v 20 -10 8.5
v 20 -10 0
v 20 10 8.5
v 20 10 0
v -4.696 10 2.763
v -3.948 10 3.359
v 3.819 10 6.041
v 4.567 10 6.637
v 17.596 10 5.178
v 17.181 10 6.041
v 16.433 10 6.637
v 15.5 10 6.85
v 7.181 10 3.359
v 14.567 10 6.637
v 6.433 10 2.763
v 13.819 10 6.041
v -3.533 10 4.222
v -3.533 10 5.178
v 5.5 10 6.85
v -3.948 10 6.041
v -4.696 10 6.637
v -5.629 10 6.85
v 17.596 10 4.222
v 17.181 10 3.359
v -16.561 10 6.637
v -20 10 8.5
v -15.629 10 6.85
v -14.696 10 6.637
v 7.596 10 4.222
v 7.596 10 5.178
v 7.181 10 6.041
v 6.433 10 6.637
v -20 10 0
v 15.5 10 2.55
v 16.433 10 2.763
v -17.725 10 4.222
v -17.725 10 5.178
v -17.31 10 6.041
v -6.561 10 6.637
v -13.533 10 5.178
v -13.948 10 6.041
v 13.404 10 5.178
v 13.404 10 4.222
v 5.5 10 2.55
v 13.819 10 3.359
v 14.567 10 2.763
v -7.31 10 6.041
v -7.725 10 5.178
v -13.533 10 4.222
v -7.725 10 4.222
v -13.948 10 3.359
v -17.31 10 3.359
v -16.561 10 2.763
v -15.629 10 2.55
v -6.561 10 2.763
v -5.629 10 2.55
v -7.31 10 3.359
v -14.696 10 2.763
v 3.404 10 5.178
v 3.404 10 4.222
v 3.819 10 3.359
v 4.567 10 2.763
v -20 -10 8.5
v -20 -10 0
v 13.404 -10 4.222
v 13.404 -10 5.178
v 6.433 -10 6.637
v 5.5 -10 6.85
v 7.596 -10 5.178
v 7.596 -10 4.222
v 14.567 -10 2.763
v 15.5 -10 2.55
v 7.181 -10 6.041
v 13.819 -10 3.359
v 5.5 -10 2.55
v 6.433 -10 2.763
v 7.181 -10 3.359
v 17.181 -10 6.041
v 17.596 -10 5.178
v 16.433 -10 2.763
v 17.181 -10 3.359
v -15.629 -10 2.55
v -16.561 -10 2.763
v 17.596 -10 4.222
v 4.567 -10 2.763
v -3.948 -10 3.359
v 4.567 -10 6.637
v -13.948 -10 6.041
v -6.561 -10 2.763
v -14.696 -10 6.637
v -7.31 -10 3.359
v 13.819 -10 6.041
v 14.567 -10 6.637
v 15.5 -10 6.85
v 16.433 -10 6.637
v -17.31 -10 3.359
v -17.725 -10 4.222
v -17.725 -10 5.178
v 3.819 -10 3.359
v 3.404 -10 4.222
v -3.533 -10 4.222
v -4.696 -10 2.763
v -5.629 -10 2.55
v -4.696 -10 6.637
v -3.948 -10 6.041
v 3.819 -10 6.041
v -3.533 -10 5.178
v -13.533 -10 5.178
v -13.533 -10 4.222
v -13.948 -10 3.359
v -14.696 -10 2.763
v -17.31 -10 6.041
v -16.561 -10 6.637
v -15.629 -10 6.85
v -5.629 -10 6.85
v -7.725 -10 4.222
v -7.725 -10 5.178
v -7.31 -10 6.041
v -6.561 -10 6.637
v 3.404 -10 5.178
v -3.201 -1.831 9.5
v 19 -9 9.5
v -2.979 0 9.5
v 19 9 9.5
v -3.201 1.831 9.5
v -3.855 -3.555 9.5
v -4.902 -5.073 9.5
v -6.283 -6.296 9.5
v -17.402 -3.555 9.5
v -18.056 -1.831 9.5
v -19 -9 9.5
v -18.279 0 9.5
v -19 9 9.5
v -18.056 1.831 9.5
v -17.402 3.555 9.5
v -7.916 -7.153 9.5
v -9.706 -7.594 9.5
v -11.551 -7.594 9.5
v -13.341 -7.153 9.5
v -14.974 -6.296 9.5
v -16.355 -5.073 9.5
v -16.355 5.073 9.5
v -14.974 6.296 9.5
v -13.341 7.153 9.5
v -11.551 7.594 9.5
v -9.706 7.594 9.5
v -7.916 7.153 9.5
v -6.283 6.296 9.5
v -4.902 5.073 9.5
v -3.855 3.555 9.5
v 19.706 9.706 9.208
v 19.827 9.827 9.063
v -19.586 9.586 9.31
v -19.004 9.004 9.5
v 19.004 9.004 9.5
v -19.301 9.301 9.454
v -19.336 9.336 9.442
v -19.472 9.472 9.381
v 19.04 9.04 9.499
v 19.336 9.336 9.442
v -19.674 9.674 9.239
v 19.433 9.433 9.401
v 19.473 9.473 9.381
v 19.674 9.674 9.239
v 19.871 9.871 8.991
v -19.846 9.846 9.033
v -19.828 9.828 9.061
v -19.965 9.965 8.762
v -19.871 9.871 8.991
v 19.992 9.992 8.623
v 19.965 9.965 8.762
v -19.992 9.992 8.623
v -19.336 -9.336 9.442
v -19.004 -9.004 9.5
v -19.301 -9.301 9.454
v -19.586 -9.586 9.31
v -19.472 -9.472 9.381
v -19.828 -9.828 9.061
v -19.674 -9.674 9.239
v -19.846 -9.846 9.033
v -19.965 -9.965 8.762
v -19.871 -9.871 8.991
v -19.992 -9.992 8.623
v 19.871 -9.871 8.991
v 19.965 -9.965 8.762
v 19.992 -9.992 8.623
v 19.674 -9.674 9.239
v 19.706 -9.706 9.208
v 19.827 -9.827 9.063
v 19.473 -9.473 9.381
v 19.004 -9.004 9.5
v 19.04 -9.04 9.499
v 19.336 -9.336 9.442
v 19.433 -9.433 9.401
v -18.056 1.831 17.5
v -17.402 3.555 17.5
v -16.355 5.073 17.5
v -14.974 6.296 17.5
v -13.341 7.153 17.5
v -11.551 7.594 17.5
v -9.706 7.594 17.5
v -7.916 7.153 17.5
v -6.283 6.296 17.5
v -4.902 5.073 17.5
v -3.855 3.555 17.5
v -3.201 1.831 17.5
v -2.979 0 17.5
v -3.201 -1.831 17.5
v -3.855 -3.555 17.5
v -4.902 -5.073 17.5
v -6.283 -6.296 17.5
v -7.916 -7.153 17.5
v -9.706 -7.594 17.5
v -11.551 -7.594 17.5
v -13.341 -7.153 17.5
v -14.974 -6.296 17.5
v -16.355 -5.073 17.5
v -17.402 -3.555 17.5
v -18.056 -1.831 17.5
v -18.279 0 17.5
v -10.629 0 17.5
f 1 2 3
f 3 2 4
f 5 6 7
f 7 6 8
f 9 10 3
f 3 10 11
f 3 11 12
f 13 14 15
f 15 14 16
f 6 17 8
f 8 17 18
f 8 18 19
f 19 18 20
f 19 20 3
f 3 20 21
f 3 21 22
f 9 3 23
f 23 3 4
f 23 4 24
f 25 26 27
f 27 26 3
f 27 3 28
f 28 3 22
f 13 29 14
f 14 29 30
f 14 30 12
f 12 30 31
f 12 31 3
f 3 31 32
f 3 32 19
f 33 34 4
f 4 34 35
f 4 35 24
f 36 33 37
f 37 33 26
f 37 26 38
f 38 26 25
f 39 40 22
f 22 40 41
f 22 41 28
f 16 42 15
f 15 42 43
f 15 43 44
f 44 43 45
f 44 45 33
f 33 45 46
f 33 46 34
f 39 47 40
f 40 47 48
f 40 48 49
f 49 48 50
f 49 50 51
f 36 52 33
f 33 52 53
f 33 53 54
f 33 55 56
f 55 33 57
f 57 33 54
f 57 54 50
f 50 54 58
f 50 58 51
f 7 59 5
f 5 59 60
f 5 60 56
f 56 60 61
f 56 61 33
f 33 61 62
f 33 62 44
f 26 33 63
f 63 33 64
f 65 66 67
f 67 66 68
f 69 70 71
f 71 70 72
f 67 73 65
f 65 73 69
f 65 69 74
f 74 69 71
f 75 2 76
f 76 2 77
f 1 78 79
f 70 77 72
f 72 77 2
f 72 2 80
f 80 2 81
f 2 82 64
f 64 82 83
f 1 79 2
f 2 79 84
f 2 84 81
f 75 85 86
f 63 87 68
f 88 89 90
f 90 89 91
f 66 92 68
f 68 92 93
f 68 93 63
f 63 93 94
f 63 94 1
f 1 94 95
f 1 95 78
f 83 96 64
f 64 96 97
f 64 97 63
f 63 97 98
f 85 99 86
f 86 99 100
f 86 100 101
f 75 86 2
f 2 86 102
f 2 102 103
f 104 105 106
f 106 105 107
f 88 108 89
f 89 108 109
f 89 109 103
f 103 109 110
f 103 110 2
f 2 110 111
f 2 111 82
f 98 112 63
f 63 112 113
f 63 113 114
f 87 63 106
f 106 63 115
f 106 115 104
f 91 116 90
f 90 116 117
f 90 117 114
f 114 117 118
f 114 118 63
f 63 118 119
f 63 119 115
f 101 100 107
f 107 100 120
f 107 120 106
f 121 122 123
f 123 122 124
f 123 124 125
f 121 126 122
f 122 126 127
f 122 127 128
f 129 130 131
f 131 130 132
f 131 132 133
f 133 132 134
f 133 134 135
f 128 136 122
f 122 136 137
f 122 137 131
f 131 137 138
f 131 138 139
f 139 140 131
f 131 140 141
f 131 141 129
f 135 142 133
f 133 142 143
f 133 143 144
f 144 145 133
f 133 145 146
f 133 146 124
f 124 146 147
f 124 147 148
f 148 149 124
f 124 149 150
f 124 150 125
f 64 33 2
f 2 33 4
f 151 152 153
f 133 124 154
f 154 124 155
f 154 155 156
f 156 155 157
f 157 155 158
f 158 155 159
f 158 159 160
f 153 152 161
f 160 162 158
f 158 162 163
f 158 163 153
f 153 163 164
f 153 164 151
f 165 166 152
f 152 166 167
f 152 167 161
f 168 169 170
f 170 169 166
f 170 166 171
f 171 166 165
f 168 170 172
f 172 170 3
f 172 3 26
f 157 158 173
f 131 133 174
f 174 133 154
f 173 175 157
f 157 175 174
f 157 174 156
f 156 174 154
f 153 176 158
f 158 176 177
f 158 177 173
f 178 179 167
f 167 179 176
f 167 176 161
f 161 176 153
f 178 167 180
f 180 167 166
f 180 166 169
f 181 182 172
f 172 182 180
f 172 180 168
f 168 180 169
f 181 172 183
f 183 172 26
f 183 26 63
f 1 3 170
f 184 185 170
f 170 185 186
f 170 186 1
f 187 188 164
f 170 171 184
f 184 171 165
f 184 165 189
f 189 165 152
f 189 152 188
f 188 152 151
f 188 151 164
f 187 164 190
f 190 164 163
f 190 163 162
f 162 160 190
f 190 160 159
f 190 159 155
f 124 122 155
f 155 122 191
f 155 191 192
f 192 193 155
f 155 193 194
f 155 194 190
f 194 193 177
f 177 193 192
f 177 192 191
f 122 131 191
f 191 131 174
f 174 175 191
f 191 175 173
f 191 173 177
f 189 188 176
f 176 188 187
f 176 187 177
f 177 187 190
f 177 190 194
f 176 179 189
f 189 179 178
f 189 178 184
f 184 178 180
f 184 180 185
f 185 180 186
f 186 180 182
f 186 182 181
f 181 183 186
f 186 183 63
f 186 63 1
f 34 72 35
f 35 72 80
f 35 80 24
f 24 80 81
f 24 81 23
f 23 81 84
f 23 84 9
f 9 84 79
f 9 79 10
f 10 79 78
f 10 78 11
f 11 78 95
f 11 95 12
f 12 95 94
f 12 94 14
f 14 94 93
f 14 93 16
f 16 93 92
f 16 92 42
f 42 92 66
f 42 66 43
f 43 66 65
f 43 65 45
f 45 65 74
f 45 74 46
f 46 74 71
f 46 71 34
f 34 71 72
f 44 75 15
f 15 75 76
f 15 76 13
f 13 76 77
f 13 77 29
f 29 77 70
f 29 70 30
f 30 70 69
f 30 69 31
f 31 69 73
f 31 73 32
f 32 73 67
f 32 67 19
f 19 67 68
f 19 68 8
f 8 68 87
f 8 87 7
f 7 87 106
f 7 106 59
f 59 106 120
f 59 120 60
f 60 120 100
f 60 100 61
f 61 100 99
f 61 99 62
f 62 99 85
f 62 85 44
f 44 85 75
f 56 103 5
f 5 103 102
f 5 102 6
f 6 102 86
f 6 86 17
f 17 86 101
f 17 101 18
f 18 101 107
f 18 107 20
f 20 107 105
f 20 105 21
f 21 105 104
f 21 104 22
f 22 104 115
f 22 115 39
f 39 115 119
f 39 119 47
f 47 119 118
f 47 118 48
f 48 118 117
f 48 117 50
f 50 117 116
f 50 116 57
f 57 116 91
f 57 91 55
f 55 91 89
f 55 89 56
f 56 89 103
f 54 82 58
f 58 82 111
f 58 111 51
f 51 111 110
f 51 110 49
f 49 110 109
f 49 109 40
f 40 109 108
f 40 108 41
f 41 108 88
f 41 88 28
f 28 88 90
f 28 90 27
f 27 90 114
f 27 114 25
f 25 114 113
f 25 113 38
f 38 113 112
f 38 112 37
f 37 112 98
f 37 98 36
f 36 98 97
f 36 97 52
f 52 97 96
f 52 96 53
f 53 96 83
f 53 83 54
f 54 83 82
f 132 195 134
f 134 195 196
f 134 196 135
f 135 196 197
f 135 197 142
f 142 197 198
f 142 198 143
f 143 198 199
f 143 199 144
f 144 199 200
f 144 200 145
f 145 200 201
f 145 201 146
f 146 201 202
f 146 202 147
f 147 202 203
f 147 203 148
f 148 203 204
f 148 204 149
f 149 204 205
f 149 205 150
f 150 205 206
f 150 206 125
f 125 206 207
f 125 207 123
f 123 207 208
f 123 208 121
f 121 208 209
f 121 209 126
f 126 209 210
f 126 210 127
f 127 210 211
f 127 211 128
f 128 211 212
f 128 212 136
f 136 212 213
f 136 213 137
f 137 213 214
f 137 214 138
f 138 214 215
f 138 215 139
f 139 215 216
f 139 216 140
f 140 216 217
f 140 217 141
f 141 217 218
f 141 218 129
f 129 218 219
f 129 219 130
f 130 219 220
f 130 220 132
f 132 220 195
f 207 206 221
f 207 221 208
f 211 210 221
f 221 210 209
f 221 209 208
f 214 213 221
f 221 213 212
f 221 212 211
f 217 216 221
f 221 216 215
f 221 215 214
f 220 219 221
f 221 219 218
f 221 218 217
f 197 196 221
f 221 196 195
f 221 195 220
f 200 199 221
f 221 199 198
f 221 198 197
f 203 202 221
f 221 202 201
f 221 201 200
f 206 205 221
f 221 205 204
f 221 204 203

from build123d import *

# Parameters (mm, degrees)
SKETCH1_W           = 40
SKETCH1_H           = 20
BOSS_EXTRUDE1_DEPTH = 9.5
FILLET1_START       = -21
FILLET1_DEPTH       = 41
FILLET1_START_2     = -11
FILLET1_2_DEPTH     = 22
SKETCH4_R           = 7.5
BOSS_EXTRUDE2_DEPTH = 8
SKETCH5_R           = 2.15
CUT_EXTRUDE1_DEPTH  = 34.260336859
SKETCH6_R           = 7.65
BOSS_EXTRUDE3_DEPTH = 8


with BuildPart() as part:
    # Sketch1 → Boss-Extrude1 (new body)
    with BuildSketch(Plane.XY):
        Rectangle(SKETCH1_W, SKETCH1_H)
    extrude(amount=BOSS_EXTRUDE1_DEPTH)

    # Fillet1: read off the stored shape, not the designer's step
    # Fillet1 outline → Fillet1 (cut)
    with BuildSketch(Plane.YZ.offset(FILLET1_START)):
        with BuildLine():
            Line((10, 9.5), (9, 9.5))
            add(Edge.make_bspline(
                [(9, 9.5), (10, 9.5), (10, 8.5)],
                knots=[0, 0, 0, 1, 1, 1], degree=2, weights=[1, 0.707106781, 1]))
            Line((10, 8.5), (10, 9.5))
        make_face()
        with BuildLine():
            add(Edge.make_bspline(
                [(-9, 9.5), (-10, 9.5), (-10, 8.5)],
                knots=[0, 0, 0, 1, 1, 1], degree=2, weights=[1, 0.707106781, 1]))
            Line((-9, 9.5), (-10, 9.5))
            Line((-10, 9.5), (-10, 8.5))
        make_face()
    extrude(amount=FILLET1_DEPTH, mode=Mode.SUBTRACT)

    # Fillet1 2 outline → Fillet1 2 (cut)
    with BuildSketch(Plane(origin=(0, 0, 0), x_dir=(1, 0, 0), z_dir=(0, 1, 0)).offset(FILLET1_START_2)):
        with BuildLine():
            Line((-20, -9.5), (-19, -9.5))
            add(Edge.make_bspline(
                [(-19, -9.5), (-20, -9.5), (-20, -8.5)],
                knots=[0, 0, 0, 1, 1, 1], degree=2, weights=[1, 0.707106781, 1]))
            Line((-20, -8.5), (-20, -9.5))
        make_face()
        with BuildLine():
            add(Edge.make_bspline(
                [(19, -9.5), (20, -9.5), (20, -8.5)],
                knots=[0, 0, 0, 1, 1, 1], degree=2, weights=[1, 0.707106781, 1]))
            Line((19, -9.5), (20, -9.5))
            Line((20, -9.5), (20, -8.5))
        make_face()
    extrude(amount=FILLET1_2_DEPTH, mode=Mode.SUBTRACT)

    # Sketch4 → Boss-Extrude2 (add)
    with BuildSketch(Plane.XY.offset(9.5)):
        with Locations((-10.628602575, 0)):
            Circle(SKETCH4_R)
    extrude(amount=BOSS_EXTRUDE2_DEPTH)

    # Sketch5 → Cut-Extrude1 (cut, through all)
    with BuildSketch(Plane.XZ.offset(10)):
        with Locations(Location((-15.628602575, 4.7, 0), (0, 0, 270))):
            Circle(SKETCH5_R)
        with Locations(Location((-5.628602575, 4.7, 0), (0, 0, 270))):
            Circle(SKETCH5_R)
        with Locations(Location((5.5, 4.7, 0), (0, 0, 270))):
            Circle(SKETCH5_R)
        with Locations(Location((15.5, 4.7, 0), (0, 0, 270))):
            Circle(SKETCH5_R)
    extrude(amount=-CUT_EXTRUDE1_DEPTH, mode=Mode.SUBTRACT)

    # Sketch6 → Boss-Extrude3 (add)
    with BuildSketch(Plane.XY.offset(9.5)):
        with Locations((-10.628602575, 0)):
            Circle(SKETCH6_R)
    extrude(amount=BOSS_EXTRUDE3_DEPTH)


solid = part.part
